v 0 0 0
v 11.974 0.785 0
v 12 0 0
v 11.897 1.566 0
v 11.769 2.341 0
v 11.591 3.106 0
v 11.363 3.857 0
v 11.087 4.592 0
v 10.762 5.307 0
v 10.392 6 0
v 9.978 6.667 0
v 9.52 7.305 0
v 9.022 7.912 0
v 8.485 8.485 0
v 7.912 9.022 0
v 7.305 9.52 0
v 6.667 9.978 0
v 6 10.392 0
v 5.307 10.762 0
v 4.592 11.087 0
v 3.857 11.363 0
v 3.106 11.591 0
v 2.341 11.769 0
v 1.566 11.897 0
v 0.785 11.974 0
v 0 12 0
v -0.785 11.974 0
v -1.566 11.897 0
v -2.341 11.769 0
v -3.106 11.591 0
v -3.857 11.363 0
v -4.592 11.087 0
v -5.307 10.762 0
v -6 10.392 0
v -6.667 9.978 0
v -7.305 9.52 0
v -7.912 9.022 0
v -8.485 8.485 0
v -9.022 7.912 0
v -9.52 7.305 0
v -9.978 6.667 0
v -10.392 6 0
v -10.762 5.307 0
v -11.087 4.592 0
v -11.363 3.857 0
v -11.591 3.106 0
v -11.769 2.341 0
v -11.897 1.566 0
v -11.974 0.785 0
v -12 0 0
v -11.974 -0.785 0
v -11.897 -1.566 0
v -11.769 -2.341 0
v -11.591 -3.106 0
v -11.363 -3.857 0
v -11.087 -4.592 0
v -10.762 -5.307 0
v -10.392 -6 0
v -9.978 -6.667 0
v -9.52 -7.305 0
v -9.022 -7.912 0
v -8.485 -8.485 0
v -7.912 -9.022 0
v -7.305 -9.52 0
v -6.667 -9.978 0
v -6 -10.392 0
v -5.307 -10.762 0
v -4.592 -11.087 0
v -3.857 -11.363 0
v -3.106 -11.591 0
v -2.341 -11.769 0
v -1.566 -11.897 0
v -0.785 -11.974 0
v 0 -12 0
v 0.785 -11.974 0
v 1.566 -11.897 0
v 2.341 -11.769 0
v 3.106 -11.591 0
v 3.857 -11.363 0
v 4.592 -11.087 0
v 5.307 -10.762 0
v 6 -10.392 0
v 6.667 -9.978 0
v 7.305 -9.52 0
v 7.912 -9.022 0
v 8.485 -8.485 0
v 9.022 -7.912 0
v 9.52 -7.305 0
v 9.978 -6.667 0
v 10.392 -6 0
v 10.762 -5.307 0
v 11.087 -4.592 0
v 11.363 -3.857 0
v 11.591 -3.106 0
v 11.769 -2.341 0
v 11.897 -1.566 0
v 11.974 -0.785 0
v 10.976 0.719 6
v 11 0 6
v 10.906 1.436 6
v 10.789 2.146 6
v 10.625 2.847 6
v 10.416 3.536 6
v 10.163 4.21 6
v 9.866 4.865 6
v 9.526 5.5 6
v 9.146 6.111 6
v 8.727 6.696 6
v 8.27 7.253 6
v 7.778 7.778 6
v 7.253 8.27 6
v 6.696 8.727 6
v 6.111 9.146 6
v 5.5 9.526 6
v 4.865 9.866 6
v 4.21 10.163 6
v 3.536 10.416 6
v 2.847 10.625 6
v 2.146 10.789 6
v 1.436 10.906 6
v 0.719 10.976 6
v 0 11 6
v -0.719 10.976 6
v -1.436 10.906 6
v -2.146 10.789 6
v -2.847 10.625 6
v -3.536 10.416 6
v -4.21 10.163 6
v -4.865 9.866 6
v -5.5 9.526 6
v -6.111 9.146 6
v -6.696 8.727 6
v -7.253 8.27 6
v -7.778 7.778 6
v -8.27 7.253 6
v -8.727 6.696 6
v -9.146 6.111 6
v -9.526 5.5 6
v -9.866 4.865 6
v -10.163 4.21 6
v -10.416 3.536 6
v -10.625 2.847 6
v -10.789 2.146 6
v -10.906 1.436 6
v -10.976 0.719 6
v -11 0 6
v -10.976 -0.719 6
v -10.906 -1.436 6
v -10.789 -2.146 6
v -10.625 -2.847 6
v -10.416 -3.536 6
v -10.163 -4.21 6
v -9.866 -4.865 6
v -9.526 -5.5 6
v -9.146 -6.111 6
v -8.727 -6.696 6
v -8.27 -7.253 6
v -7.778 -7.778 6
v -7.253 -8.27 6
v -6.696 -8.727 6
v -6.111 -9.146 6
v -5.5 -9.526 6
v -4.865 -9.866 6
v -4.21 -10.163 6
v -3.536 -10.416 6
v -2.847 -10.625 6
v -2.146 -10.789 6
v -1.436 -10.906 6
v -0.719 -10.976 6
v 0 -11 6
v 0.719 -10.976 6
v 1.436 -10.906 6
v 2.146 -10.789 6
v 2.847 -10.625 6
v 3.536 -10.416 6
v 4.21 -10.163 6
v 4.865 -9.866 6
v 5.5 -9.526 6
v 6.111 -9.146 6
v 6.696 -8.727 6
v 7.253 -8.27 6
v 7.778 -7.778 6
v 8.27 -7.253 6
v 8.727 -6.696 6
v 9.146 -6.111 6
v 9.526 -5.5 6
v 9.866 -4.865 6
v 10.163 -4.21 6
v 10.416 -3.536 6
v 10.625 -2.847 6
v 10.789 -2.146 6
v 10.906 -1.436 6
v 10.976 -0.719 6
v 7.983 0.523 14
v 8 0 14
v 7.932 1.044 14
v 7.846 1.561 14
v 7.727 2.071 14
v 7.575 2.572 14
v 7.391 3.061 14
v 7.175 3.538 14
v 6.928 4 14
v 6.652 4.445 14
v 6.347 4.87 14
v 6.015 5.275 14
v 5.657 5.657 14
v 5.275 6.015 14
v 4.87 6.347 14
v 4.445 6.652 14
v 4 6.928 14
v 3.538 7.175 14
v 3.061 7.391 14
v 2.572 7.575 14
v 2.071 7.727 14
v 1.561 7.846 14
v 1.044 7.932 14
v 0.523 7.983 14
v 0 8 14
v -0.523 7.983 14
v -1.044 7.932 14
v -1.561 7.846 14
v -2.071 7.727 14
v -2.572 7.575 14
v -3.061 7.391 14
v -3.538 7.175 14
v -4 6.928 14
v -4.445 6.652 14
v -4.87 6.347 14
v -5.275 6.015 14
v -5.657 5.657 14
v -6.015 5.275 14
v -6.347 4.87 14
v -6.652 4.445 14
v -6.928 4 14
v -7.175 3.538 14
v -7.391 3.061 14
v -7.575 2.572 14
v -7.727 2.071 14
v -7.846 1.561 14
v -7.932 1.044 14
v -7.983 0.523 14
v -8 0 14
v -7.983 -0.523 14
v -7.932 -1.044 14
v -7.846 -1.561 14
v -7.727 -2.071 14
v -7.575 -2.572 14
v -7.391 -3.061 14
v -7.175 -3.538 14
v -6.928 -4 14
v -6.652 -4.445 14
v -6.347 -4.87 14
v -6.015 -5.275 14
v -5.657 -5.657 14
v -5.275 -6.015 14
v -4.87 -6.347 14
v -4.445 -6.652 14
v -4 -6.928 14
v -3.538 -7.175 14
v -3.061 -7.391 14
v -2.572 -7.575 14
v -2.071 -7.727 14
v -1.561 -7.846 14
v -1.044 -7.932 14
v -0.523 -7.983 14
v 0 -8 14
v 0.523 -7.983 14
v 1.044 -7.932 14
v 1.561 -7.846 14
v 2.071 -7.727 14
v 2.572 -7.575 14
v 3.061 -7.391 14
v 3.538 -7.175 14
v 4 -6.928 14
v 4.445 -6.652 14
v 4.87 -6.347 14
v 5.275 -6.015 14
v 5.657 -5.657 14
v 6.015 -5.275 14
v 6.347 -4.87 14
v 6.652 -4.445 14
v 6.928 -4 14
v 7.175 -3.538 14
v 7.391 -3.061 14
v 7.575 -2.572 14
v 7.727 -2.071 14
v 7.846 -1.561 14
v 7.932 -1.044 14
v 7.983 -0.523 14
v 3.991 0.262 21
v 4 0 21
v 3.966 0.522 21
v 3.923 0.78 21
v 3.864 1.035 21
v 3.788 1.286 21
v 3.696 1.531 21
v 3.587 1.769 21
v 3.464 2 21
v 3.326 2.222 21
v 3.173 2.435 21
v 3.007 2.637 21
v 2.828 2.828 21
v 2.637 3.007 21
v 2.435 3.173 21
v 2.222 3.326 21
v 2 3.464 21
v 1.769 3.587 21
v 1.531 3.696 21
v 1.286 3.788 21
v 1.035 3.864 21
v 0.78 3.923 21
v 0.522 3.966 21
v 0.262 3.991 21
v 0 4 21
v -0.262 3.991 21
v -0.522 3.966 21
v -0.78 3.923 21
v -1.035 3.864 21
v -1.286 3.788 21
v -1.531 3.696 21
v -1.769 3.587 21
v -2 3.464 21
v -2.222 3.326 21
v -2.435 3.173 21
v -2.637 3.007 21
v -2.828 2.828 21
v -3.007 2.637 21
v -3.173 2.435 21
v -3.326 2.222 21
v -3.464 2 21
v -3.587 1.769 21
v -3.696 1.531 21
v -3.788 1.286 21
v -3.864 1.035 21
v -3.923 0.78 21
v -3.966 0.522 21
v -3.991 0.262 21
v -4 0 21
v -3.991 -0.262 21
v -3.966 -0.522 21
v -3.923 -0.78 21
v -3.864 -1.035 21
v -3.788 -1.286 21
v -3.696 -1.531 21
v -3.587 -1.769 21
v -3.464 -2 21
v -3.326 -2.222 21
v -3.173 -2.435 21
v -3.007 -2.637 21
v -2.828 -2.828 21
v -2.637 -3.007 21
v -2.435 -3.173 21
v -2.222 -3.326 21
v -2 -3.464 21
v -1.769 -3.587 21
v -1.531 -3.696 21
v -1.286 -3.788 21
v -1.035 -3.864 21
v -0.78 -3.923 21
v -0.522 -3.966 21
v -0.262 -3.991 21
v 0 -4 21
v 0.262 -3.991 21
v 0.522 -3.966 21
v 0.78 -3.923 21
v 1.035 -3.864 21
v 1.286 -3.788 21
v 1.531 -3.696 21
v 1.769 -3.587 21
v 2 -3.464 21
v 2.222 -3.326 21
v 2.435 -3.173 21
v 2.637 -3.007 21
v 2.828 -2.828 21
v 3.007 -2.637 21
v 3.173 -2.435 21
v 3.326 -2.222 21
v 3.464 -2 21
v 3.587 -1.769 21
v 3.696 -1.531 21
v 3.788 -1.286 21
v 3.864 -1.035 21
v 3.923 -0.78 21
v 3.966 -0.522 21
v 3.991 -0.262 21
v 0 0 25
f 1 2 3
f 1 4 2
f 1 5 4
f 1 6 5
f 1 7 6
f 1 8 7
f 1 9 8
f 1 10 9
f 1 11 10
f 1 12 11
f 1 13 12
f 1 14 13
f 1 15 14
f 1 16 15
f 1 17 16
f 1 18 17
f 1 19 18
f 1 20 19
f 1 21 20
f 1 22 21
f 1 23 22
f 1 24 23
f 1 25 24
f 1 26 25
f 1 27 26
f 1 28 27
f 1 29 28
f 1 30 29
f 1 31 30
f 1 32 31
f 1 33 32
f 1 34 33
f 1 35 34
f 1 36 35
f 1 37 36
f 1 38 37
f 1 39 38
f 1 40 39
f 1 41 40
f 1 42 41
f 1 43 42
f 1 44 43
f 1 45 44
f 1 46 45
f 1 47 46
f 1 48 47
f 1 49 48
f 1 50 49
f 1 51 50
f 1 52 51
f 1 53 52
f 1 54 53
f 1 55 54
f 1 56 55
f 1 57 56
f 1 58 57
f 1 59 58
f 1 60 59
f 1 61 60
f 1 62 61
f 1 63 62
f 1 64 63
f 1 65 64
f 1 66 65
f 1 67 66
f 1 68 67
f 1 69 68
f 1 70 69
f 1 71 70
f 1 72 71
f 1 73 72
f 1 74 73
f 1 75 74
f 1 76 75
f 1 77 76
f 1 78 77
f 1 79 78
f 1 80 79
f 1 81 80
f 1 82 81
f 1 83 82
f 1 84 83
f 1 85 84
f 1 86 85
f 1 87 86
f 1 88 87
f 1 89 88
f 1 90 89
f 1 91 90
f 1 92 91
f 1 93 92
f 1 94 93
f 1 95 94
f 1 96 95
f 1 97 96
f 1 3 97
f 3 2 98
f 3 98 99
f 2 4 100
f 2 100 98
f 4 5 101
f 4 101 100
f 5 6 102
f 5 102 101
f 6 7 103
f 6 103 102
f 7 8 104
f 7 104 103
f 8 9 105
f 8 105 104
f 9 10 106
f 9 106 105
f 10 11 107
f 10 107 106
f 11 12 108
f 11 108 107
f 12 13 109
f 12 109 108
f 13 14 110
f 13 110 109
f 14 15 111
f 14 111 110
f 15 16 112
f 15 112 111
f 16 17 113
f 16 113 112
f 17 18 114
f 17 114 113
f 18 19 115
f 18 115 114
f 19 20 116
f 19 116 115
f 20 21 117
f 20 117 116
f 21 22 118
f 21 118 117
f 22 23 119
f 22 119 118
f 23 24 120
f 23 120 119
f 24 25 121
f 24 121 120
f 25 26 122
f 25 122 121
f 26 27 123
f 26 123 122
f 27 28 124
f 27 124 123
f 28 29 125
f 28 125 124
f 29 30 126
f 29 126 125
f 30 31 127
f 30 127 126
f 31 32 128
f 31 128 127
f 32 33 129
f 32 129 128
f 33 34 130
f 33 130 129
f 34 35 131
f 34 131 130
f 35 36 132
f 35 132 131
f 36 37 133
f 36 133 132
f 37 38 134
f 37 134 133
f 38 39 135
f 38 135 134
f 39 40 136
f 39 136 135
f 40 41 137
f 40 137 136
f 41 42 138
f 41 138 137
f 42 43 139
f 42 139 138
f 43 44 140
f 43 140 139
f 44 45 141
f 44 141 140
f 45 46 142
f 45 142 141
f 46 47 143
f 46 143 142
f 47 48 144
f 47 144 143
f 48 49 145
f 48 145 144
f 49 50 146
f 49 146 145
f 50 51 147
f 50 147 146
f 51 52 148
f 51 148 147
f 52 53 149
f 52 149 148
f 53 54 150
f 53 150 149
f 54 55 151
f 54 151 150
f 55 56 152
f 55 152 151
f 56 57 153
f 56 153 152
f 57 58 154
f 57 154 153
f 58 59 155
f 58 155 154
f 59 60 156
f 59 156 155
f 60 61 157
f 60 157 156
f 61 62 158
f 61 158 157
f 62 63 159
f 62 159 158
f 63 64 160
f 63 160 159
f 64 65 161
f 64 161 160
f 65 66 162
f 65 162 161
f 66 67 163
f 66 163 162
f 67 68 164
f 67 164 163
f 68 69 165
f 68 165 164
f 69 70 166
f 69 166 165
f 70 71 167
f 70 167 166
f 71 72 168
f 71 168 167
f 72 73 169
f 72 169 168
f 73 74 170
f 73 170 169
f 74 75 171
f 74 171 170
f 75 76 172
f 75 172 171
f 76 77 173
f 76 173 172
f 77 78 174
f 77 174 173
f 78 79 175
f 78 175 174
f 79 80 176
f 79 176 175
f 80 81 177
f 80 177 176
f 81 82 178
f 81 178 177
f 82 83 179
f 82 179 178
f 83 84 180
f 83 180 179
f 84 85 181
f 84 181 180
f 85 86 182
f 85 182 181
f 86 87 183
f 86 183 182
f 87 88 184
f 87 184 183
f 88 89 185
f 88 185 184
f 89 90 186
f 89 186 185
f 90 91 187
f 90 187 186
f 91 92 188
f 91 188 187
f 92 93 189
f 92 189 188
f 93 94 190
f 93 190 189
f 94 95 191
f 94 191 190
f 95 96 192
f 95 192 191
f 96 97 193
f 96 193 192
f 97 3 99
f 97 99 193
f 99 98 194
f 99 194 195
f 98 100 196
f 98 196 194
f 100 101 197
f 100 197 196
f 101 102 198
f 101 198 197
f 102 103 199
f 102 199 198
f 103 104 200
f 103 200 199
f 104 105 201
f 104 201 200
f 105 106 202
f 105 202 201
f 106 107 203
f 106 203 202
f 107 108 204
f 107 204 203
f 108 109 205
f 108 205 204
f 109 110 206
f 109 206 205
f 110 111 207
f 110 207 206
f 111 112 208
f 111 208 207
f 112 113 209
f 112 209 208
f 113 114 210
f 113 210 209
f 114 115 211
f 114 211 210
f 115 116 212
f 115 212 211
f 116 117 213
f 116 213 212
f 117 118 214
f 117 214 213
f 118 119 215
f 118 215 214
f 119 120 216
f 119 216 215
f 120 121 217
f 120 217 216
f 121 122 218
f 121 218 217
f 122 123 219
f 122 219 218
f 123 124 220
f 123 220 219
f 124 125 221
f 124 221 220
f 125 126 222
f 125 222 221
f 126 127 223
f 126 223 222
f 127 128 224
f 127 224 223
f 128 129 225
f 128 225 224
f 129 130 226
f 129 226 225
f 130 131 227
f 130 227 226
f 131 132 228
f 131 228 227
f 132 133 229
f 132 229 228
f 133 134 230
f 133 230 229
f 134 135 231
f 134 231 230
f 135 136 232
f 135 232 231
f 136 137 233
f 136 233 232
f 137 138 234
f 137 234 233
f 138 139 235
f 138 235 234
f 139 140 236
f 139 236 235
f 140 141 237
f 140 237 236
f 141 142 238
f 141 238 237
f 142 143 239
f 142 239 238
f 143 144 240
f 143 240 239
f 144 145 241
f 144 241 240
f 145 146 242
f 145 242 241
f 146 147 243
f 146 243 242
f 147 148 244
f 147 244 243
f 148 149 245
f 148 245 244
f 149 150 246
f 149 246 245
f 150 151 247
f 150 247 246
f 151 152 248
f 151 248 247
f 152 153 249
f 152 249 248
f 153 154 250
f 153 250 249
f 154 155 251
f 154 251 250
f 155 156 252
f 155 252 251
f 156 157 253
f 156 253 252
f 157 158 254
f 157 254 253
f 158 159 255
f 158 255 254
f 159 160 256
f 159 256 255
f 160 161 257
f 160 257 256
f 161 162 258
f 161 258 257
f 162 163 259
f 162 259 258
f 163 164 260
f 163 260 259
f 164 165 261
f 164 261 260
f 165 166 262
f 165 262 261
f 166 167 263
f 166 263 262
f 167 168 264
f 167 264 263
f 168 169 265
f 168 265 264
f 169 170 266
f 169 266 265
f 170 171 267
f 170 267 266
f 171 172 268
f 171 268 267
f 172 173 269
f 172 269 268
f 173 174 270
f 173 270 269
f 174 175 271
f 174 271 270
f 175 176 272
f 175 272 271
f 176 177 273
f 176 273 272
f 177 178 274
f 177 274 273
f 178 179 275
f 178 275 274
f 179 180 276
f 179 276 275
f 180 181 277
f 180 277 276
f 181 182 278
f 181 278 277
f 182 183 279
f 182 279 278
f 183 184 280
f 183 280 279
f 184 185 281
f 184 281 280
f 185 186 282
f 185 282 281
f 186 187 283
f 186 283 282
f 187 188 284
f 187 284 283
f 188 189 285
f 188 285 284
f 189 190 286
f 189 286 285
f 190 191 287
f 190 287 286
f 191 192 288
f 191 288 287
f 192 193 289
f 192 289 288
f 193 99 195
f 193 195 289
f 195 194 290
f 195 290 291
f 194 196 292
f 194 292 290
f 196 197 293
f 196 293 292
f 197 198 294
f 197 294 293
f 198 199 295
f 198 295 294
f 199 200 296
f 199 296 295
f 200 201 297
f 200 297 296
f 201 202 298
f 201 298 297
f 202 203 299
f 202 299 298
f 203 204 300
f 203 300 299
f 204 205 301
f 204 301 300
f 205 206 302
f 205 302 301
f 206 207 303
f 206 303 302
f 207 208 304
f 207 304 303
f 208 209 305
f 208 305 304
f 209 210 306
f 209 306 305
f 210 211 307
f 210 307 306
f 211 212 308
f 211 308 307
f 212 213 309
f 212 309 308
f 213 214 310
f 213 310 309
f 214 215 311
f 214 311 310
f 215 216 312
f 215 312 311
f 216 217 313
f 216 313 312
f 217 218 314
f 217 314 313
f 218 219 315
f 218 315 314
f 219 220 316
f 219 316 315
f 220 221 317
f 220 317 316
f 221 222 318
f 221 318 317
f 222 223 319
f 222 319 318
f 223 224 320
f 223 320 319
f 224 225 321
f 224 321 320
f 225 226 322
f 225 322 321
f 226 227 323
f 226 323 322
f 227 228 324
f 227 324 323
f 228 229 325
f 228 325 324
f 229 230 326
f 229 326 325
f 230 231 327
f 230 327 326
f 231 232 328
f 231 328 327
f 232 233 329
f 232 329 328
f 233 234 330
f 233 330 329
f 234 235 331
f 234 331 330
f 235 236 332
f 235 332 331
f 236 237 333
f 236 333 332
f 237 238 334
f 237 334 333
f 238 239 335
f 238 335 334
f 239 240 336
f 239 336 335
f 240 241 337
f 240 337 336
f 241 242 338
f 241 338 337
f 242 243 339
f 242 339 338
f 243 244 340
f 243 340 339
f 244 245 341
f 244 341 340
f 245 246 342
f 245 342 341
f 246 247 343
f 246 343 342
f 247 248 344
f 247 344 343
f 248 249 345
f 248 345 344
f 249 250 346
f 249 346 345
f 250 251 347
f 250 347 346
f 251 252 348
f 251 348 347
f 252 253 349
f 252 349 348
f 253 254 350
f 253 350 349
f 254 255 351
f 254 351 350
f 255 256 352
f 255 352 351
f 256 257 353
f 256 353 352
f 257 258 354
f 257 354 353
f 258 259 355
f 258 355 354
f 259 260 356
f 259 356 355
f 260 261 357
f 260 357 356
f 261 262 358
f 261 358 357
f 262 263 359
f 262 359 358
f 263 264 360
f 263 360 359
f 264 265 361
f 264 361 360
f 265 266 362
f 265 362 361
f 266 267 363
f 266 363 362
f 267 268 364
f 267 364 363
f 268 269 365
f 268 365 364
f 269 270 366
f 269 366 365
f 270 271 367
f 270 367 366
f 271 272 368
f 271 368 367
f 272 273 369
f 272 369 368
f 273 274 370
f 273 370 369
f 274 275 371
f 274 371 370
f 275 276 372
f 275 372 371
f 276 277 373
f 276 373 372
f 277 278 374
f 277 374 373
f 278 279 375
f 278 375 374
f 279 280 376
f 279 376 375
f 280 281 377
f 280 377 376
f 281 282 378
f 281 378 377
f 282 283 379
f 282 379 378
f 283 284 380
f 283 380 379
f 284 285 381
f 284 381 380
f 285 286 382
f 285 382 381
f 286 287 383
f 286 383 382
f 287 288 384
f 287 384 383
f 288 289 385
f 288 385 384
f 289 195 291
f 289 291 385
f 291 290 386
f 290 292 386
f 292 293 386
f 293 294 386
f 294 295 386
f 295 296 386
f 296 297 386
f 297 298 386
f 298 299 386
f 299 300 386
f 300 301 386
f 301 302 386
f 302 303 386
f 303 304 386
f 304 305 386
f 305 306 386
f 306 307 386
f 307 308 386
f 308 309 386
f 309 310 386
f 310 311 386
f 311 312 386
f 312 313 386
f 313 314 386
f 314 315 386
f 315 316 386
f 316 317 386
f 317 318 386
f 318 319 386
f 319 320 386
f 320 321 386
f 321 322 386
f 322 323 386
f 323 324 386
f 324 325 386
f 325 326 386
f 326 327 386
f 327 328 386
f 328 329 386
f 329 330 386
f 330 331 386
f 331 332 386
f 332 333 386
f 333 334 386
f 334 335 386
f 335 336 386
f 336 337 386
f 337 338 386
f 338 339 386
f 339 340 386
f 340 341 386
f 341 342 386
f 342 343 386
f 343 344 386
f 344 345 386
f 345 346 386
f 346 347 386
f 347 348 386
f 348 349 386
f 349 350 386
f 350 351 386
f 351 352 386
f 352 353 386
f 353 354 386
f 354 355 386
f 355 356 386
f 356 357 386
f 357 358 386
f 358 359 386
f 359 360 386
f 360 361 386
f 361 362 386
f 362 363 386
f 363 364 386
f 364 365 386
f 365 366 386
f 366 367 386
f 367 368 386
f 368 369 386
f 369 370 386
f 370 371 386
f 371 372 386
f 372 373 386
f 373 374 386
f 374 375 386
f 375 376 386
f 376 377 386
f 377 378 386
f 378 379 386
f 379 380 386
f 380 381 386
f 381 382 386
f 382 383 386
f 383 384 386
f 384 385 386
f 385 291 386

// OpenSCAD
// Original MechIntel educational model. CC0-1.0. Units: mm.
// Not a standardized or load-rated component.
$fn=96;
// Section points: [radius, height], mm. Edit to change the profile.
section=[[0, 0], [12, 0], [11, 6], [8, 14], [4, 21], [0, 25]];
rotate_extrude($fn=96) polygon(points=section);
